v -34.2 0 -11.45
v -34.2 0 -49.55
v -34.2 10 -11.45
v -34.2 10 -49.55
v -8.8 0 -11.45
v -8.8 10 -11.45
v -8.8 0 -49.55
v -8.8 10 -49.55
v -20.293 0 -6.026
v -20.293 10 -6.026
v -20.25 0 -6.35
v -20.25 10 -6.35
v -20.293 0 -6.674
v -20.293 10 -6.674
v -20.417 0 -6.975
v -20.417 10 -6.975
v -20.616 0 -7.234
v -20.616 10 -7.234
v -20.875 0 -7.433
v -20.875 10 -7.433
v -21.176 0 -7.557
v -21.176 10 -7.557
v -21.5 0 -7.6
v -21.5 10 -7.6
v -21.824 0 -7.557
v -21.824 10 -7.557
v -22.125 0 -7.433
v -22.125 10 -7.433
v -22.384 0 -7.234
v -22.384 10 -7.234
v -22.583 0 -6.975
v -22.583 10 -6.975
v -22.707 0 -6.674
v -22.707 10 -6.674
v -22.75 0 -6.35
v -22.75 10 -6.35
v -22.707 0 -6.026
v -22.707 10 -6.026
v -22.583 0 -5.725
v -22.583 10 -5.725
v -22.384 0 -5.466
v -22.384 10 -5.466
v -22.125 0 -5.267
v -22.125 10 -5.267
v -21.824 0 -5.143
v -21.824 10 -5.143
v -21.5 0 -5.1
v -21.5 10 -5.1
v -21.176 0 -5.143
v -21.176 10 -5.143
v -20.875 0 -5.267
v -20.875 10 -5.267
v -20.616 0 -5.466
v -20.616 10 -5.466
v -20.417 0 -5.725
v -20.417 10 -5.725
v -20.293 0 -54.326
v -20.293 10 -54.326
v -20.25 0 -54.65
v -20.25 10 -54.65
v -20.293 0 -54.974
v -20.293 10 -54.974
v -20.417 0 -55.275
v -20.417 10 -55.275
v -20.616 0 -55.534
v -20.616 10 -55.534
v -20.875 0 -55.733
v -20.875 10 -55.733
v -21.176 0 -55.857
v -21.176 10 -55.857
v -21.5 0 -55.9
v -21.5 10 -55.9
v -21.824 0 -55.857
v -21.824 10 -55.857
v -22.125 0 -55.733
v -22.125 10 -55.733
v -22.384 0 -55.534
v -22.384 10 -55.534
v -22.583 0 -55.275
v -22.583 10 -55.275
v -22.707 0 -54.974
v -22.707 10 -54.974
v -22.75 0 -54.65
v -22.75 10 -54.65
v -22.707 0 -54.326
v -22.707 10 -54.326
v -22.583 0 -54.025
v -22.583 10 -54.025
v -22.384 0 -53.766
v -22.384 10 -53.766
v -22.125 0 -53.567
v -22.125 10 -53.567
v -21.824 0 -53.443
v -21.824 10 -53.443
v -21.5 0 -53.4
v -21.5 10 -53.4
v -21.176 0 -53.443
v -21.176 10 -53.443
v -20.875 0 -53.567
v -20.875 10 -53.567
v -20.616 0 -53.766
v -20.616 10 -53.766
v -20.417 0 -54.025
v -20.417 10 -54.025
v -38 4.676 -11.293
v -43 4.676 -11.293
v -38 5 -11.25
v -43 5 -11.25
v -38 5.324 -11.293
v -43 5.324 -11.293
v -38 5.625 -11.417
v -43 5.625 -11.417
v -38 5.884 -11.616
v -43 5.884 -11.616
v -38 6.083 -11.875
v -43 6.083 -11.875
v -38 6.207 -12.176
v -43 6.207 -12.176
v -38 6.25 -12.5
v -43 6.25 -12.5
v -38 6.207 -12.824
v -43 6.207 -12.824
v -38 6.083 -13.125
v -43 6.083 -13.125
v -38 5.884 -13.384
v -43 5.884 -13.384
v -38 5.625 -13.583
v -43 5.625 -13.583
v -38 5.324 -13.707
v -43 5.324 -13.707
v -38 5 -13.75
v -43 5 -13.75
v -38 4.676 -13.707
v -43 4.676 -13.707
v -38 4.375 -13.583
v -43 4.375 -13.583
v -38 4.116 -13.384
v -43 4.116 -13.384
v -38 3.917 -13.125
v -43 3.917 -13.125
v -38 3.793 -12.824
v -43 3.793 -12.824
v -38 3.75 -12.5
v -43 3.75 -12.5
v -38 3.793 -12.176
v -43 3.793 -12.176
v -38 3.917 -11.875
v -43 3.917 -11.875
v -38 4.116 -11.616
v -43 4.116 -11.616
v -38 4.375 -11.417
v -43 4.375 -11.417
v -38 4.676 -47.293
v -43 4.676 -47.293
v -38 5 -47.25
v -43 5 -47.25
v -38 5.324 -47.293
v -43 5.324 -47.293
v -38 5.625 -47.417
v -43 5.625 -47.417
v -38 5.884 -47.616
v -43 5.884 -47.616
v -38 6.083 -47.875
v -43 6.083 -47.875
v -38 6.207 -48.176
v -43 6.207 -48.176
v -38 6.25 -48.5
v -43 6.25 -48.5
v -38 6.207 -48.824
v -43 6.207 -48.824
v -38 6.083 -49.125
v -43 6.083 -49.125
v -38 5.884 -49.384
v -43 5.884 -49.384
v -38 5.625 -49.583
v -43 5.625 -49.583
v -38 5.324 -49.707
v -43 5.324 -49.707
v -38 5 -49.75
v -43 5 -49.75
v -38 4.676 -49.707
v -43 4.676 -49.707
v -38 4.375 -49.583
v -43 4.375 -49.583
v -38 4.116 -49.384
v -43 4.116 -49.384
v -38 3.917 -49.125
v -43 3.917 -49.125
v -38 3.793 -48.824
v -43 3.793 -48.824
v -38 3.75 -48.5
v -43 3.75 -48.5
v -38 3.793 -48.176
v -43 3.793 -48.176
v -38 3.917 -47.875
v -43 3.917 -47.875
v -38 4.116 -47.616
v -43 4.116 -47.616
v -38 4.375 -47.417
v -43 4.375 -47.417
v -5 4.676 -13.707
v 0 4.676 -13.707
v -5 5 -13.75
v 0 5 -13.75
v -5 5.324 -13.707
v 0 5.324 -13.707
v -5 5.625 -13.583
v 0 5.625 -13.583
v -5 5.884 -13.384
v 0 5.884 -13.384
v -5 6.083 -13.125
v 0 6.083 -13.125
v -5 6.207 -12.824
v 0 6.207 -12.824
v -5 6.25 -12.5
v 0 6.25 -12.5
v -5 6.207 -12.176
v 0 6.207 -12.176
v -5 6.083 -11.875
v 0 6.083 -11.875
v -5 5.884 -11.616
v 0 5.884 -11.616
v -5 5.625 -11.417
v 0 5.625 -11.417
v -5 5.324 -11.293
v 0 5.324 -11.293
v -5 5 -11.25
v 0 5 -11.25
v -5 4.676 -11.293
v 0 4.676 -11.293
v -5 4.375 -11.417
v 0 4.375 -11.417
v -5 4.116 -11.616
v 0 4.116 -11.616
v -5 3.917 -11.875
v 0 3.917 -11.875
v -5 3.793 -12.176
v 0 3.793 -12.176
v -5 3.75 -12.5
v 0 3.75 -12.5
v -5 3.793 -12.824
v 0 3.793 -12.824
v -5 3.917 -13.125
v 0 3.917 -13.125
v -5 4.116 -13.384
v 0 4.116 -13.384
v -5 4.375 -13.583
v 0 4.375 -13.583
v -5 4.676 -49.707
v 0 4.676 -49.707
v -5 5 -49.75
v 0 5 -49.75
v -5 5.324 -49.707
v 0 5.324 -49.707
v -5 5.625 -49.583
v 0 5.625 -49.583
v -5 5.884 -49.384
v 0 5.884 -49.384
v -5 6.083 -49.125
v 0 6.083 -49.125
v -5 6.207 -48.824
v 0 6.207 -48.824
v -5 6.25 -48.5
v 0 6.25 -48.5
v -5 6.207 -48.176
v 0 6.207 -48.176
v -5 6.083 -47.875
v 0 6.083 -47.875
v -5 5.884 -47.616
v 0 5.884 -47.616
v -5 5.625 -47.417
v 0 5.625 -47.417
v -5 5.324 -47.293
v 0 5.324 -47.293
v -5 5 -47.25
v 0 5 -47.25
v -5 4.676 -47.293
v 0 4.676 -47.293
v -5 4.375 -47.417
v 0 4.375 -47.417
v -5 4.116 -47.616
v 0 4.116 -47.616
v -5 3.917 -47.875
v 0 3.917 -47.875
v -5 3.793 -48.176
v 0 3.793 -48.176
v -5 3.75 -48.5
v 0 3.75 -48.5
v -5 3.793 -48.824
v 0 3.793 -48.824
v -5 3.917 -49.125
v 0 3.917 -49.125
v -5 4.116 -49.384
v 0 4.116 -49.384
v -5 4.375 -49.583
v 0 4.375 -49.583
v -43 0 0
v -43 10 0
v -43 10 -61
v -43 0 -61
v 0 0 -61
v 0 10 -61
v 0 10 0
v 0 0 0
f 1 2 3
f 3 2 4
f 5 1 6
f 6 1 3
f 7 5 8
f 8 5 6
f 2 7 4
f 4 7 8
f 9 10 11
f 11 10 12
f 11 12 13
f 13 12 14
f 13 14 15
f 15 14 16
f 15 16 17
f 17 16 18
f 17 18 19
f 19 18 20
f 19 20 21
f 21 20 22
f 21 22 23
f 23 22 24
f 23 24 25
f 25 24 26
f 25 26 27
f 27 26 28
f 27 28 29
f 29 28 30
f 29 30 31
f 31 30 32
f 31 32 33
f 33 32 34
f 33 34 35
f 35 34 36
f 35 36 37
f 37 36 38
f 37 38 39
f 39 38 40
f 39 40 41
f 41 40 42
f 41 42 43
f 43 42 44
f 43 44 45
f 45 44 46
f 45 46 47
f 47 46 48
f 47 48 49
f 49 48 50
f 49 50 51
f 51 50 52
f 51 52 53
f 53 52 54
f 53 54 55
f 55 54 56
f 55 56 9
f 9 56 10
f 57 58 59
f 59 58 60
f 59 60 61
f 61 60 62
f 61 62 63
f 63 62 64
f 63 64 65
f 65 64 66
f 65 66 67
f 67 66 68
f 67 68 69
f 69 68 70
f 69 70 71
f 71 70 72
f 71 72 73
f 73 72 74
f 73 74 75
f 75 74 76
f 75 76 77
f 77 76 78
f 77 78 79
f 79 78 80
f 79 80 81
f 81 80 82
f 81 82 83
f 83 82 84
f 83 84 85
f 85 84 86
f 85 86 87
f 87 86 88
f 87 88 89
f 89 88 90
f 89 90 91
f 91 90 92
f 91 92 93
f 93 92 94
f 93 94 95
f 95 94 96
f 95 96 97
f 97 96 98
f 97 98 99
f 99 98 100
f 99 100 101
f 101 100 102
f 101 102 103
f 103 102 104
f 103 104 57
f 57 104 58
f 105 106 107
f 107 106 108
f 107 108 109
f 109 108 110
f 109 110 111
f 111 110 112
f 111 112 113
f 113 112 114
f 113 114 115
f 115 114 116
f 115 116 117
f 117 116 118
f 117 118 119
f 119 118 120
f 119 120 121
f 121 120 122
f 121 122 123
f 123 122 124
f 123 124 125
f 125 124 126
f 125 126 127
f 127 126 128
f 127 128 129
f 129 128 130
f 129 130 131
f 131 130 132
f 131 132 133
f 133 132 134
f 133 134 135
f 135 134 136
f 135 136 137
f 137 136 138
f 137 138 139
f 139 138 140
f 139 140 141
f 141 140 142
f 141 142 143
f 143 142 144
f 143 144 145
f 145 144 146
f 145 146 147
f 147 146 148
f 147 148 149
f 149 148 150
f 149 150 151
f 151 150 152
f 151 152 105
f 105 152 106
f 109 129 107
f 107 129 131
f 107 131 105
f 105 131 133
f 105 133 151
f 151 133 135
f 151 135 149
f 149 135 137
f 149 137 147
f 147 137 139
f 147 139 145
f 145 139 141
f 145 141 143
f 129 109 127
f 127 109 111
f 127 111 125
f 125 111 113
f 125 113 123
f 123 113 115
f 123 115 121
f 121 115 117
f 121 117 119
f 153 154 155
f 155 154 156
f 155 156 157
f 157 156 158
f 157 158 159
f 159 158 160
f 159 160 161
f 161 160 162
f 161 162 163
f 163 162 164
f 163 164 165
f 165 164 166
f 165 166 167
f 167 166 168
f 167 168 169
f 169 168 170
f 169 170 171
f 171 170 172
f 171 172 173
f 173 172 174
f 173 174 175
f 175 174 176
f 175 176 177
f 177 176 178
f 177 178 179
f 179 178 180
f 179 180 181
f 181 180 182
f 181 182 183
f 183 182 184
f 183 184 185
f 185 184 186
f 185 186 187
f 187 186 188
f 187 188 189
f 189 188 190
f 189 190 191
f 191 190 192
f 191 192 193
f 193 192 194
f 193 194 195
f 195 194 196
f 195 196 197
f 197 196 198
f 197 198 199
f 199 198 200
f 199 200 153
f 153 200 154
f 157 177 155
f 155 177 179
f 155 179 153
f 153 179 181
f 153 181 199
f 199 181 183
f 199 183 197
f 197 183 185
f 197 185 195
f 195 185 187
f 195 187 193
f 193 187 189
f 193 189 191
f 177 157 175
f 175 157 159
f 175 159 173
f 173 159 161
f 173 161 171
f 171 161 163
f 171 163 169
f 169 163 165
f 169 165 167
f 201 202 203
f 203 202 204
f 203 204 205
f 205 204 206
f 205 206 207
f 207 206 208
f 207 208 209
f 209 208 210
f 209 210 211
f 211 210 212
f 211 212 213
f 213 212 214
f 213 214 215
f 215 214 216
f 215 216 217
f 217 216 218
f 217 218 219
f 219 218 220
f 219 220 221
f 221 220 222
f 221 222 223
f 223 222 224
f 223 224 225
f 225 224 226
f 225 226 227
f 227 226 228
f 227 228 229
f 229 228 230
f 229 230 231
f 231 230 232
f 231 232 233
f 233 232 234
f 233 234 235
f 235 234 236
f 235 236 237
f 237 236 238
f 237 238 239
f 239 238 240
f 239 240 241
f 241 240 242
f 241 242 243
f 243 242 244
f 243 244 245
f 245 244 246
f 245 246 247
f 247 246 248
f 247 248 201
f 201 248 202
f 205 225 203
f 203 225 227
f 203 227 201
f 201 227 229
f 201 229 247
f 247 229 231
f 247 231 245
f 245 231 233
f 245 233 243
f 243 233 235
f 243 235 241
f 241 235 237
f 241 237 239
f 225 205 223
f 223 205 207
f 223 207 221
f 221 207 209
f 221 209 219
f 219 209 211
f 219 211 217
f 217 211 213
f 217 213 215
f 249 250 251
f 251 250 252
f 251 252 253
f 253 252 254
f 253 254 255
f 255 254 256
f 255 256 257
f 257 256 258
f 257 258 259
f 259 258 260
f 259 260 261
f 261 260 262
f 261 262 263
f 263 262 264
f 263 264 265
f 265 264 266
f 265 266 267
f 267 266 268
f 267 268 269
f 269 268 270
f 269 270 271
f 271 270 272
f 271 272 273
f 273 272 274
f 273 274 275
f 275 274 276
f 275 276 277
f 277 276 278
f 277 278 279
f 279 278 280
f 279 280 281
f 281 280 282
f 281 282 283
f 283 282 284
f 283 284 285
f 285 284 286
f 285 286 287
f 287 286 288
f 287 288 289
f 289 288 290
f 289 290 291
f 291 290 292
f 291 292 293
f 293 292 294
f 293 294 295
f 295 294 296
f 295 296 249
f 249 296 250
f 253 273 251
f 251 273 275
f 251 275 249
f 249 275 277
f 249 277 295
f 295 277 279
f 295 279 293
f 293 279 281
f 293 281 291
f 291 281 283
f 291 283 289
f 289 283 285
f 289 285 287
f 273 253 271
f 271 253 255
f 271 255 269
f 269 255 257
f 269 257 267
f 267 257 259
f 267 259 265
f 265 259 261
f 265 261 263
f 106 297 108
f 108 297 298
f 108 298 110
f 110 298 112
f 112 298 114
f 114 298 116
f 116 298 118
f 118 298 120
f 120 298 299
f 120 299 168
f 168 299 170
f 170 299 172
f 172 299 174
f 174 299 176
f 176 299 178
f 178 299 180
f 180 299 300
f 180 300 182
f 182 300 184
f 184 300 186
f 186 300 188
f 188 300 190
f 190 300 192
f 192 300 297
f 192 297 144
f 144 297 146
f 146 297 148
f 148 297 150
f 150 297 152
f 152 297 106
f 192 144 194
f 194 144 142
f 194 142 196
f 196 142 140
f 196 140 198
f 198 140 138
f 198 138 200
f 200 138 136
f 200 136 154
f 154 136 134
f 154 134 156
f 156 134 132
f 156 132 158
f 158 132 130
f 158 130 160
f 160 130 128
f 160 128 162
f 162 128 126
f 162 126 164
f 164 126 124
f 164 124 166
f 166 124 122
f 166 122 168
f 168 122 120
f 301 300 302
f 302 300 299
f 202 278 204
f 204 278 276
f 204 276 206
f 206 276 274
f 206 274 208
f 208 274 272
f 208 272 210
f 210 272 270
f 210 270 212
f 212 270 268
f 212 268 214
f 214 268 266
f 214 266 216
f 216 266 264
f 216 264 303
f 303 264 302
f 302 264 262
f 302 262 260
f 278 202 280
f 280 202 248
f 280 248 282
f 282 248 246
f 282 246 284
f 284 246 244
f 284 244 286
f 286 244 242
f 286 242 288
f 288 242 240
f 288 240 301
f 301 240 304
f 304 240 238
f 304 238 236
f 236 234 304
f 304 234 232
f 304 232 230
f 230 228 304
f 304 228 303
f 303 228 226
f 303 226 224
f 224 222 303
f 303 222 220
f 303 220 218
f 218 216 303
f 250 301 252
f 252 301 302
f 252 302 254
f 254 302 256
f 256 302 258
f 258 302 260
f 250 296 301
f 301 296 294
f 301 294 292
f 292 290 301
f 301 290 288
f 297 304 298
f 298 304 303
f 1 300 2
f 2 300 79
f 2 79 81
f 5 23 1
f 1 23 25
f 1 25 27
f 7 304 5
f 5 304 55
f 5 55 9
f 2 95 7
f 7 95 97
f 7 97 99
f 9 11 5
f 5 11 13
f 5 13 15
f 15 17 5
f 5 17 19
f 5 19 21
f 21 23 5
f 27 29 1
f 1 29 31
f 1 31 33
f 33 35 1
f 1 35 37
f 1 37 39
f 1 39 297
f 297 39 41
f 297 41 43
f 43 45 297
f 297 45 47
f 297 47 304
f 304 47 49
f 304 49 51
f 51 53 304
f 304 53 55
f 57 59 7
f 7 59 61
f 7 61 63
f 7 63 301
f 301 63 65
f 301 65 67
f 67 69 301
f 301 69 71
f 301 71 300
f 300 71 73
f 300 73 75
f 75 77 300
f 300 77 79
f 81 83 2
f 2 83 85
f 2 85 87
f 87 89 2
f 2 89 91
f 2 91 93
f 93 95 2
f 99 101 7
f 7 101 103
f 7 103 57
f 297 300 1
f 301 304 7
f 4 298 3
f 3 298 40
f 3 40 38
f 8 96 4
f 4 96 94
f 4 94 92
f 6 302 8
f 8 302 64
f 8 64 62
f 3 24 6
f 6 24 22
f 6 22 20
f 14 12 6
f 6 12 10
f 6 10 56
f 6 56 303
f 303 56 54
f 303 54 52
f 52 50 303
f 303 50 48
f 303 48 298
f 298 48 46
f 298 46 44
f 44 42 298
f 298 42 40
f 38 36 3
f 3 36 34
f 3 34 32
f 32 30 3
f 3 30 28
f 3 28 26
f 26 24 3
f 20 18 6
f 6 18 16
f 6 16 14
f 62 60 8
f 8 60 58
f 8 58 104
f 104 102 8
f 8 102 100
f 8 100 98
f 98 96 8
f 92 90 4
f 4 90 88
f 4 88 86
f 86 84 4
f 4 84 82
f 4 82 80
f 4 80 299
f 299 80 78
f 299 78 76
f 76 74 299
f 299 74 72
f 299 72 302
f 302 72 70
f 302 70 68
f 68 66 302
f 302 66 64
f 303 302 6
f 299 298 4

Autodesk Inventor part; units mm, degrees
ref_plane "YZ Plane" through (0, 0, 0) normal (1, 0, 0) x (0, 1, 0)
ref_plane "XZ Plane" through (0, 0, 0) normal (0, 1, 0) x (-1, 0, 0)
ref_plane "XY Plane" through (0, 0, 0) normal (0, 0, 1) x (1, 0, 0)
sketch "Sketch1" plane through (0, 0, 0) normal (0, 1, 0) x (-1, 0, 0)
  line L0 (0, 0) -> (43, 0)
  line L1 (43, 0) -> (43, -61)
  line L2 (43, -61) -> (0, -61)
  line L3 (0, -61) -> (0, 0)
  dimension "d0" = 61
  dimension "d1" = 43
extrude "Extrusion1" add sketch "Sketch1" along normal blind 10
sketch "Sketch2" plane through (0, 0, 0) normal (1, 0, 0) x (0, 0, -1)
  line L0 (0, 0) -> (0, 10) projected
  line L1 (0, 5) -> (12.5, 5)
  circle A0 centre (12.5, 5) radius 1.25
  line L2 (0, 10) -> (61, 10) projected
  line L3 (30.5, 10) -> (30.5, 0)
  circle A1 centre (48.5, 5) radius 1.25
  dimension "d4" = 12.5
  dimension "d5" = 2.5
extrude "Extrusion2" cut sketch "Sketch2" against normal blind 5
sketch "Sketch3" plane through (-43, 0, -61) normal (-1, 0, 0) x (0, 0, 1)
  line L0 (61, 0) -> (0, 0) projected
  line L1 (61, 0) -> (61, 10) projected
  line L2 (0, 10) -> (61, 10) projected
  line L3 (0, 0) -> (0, 10) projected
  circle A0 centre (48.5, 5) radius 1.25 projected
  circle A1 centre (12.5, 5) radius 1.25 projected
extrude "Extrusion3" cut sketch "Sketch3" against normal blind 5 contours A0 | A1
sketch "Sketch4" plane through (0, 10, 0) normal (0, 1, 0) x (1, 0, 0)
  line L0 (-43, 0) -> (0, 0) projected
  line L1 (0, 61) -> (-43, 61) projected
  line L2 (-21.5, 0) -> (-21.5, 6.35)
  line L3 (-21.5, 61) -> (-21.5, 54.65)
  circle A0 centre (-21.5, 6.35) radius 1.25
  circle A1 centre (-21.5, 54.65) radius 1.25
  dimension "d10" = 6.35
  dimension "d11" = 6.35
  dimension "d12" = 2.5
  dimension "d13" = 2.5
extrude "Extrusion4" cut sketch "Sketch4" against normal up to surface (10 mm away)
sketch "Sketch5" plane through (0, 10, 0) normal (0, 1, 0) x (1, 0, 0)
  circle A0 centre (-21.5, 6.35) radius 1.25 projected
  circle A1 centre (-21.5, 54.65) radius 1.25 projected
  line L0 (-43, 0) -> (0, 0) projected
  line L1 (0, 0) -> (0, 61) projected
  line L2 (0, 61) -> (-43, 61) projected
  line L3 (-43, 61) -> (-43, 0) projected
  line L4 (-8.8, 11.45) -> (-34.2, 11.45)
  line L5 (-34.2, 11.45) -> (-34.2, 49.55)
  line L6 (-34.2, 49.55) -> (-8.8, 49.55)
  line L7 (-8.8, 49.55) -> (-8.8, 11.45)
  line L8 (-8.8, 11.45) -> (-34.2, 49.55) construction
  line L9 (-34.2, 11.45) -> (-8.8, 49.55) construction
  point P0 (-21.5, 30.5)
  dimension "d16" = 25.4
  dimension "d17" = 38.1
extrude "Extrusion5" cut sketch "Sketch5" against normal up to surface (10 mm away) contours L4 L5 L6 L7
properties part number "bottomTiltOnly"
